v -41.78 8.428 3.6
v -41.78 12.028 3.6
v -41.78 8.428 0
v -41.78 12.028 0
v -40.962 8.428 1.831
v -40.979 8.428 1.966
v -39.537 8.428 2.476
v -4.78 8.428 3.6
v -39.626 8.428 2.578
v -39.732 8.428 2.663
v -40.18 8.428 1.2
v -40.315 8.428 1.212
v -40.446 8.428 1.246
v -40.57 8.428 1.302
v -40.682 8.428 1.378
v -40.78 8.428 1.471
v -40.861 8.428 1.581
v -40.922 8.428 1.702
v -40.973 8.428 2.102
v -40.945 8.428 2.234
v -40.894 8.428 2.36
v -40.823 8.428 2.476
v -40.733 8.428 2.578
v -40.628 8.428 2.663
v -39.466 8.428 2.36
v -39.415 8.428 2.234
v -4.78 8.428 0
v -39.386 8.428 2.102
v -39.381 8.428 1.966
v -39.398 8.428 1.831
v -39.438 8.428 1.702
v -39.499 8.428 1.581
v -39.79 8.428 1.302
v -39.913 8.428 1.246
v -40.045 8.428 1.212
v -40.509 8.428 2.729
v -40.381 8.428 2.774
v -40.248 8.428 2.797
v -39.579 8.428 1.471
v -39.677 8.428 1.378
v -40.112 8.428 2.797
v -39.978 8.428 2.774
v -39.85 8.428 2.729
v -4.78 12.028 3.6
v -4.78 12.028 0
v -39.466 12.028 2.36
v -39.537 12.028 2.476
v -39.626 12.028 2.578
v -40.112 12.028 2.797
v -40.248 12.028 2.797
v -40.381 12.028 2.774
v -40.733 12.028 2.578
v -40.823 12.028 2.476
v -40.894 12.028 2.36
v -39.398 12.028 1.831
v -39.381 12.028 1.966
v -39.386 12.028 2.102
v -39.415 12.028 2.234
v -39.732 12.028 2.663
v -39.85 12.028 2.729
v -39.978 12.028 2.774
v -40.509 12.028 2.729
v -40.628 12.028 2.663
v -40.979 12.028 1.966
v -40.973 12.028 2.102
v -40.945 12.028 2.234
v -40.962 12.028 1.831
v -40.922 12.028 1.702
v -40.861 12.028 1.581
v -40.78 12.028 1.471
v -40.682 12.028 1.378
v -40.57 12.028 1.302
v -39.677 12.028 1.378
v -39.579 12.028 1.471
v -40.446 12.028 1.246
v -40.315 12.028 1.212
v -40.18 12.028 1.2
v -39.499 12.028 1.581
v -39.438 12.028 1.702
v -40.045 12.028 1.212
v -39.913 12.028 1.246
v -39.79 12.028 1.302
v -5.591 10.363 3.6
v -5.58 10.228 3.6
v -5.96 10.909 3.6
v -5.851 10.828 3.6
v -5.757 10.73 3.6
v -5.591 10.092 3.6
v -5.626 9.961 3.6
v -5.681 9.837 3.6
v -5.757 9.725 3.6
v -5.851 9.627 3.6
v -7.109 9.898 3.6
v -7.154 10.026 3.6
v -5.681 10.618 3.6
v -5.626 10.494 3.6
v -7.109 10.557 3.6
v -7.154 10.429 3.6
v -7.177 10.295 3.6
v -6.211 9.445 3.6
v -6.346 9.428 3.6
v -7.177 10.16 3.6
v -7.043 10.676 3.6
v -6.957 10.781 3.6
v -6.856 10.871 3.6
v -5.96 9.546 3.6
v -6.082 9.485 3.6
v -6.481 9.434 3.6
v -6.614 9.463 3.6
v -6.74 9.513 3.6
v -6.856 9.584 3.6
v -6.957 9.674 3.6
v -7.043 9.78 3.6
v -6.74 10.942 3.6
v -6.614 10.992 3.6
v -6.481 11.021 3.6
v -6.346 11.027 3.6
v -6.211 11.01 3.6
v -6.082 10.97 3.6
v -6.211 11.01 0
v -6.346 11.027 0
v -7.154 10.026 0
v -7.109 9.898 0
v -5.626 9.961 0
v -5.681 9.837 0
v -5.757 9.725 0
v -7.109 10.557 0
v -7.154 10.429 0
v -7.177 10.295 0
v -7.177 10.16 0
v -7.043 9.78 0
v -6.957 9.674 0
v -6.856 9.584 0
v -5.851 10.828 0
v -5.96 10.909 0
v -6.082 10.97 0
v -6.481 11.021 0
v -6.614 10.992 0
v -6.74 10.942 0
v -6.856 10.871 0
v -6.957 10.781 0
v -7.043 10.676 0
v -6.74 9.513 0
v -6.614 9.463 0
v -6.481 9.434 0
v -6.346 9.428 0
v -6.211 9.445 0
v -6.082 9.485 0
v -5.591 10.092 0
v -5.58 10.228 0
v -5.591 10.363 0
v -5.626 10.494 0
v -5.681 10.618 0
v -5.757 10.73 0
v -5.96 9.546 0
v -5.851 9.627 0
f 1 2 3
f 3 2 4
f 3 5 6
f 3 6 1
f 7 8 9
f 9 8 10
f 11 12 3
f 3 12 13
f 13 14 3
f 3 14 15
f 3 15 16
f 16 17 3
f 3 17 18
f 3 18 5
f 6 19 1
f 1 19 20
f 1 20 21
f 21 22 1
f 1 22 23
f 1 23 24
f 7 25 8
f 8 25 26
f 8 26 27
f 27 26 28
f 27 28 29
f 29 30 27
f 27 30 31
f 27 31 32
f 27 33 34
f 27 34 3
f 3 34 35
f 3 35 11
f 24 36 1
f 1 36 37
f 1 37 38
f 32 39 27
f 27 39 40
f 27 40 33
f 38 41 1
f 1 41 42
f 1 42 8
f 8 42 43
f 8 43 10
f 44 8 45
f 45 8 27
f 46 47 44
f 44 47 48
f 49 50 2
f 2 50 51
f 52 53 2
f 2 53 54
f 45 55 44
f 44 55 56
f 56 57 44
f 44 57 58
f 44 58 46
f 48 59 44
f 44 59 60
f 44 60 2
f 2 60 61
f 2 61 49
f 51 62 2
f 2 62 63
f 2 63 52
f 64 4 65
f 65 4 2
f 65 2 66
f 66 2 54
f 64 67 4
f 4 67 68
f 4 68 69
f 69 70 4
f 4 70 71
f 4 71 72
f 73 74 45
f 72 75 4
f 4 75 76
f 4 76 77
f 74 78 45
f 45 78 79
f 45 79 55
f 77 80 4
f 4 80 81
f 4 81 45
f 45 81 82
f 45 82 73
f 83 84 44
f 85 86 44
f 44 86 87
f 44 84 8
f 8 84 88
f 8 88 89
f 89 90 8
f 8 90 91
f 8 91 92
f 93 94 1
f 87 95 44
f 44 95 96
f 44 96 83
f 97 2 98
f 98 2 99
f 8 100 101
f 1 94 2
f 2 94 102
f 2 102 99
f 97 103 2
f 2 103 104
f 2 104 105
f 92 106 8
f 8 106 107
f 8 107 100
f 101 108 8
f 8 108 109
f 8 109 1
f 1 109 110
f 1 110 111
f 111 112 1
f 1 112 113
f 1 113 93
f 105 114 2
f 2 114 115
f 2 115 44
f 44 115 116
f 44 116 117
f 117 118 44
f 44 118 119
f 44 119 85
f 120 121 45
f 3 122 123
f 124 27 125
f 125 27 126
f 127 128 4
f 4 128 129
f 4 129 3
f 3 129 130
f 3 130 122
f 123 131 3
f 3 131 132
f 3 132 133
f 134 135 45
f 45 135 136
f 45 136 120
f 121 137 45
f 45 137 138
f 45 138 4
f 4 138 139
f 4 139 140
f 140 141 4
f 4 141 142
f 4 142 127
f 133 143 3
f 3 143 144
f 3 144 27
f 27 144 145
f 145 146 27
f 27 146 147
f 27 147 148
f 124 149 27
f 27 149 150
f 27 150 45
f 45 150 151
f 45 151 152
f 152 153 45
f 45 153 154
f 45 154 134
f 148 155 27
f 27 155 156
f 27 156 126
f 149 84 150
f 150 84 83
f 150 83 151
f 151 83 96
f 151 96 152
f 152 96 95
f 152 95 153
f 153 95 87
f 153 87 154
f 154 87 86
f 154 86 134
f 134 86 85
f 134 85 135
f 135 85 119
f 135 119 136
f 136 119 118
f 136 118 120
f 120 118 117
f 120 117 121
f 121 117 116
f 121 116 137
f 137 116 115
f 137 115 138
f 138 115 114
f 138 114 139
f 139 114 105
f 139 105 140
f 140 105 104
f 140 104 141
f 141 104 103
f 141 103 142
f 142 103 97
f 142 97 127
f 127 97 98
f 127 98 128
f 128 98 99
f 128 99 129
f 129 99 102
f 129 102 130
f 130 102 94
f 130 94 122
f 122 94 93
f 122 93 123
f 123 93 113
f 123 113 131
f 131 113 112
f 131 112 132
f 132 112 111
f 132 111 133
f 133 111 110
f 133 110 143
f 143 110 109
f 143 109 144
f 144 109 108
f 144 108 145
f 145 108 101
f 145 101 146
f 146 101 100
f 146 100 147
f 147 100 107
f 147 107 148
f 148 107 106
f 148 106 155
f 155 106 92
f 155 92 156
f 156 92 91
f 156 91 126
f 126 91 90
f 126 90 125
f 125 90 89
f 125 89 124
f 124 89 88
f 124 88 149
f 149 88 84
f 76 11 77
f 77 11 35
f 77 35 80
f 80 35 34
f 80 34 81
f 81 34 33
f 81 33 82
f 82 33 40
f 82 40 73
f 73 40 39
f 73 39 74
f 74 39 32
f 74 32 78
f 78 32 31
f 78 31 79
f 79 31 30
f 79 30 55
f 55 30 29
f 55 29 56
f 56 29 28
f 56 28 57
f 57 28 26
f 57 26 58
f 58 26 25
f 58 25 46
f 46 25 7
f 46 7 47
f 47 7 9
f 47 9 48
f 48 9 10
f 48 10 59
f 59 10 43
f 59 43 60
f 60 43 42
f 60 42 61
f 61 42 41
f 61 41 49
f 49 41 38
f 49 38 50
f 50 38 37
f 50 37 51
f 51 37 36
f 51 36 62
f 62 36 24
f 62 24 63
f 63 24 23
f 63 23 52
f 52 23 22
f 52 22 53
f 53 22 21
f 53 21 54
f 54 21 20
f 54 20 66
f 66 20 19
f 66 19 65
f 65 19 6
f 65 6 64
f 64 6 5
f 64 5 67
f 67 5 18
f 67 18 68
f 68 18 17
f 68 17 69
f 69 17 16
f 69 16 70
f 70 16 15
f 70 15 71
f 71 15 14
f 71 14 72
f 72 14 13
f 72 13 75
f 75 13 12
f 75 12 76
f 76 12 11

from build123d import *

# Parameters (mm, degrees)
SKETCH1_W           = 37
SKETCH1_H           = 3.6
BOSS_EXTRUDE1_DEPTH = 3.6
SKETCH2_R           = 0.8
CUT_EXTRUDE1_DEPTH  = 3.6
SKETCH3_R           = 0.8
CUT_EXTRUDE2_DEPTH  = 3.6


with BuildPart() as part:
    # Sketch1 → Boss-Extrude1 (new body)
    with BuildSketch(Plane.XY):
        with Locations((-23.279872622, 10.227539088)):
            Rectangle(SKETCH1_W, SKETCH1_H)
    extrude(amount=BOSS_EXTRUDE1_DEPTH)

    # Sketch2 → Cut-Extrude1 (cut)
    with BuildSketch(Plane.XY.offset(3.6)):
        with Locations((-6.379872622, 10.227539088)):
            Circle(SKETCH2_R)
    extrude(amount=-CUT_EXTRUDE1_DEPTH, mode=Mode.SUBTRACT)

    # Sketch3 → Cut-Extrude2 (cut)
    with BuildSketch(Plane.XZ.offset(-8.427539088)):
        with Locations(Location((-40.179872622, 2, 0), (0, 0, 270))):
            Circle(SKETCH3_R)
    extrude(amount=-CUT_EXTRUDE2_DEPTH, mode=Mode.SUBTRACT)


solid = part.part
